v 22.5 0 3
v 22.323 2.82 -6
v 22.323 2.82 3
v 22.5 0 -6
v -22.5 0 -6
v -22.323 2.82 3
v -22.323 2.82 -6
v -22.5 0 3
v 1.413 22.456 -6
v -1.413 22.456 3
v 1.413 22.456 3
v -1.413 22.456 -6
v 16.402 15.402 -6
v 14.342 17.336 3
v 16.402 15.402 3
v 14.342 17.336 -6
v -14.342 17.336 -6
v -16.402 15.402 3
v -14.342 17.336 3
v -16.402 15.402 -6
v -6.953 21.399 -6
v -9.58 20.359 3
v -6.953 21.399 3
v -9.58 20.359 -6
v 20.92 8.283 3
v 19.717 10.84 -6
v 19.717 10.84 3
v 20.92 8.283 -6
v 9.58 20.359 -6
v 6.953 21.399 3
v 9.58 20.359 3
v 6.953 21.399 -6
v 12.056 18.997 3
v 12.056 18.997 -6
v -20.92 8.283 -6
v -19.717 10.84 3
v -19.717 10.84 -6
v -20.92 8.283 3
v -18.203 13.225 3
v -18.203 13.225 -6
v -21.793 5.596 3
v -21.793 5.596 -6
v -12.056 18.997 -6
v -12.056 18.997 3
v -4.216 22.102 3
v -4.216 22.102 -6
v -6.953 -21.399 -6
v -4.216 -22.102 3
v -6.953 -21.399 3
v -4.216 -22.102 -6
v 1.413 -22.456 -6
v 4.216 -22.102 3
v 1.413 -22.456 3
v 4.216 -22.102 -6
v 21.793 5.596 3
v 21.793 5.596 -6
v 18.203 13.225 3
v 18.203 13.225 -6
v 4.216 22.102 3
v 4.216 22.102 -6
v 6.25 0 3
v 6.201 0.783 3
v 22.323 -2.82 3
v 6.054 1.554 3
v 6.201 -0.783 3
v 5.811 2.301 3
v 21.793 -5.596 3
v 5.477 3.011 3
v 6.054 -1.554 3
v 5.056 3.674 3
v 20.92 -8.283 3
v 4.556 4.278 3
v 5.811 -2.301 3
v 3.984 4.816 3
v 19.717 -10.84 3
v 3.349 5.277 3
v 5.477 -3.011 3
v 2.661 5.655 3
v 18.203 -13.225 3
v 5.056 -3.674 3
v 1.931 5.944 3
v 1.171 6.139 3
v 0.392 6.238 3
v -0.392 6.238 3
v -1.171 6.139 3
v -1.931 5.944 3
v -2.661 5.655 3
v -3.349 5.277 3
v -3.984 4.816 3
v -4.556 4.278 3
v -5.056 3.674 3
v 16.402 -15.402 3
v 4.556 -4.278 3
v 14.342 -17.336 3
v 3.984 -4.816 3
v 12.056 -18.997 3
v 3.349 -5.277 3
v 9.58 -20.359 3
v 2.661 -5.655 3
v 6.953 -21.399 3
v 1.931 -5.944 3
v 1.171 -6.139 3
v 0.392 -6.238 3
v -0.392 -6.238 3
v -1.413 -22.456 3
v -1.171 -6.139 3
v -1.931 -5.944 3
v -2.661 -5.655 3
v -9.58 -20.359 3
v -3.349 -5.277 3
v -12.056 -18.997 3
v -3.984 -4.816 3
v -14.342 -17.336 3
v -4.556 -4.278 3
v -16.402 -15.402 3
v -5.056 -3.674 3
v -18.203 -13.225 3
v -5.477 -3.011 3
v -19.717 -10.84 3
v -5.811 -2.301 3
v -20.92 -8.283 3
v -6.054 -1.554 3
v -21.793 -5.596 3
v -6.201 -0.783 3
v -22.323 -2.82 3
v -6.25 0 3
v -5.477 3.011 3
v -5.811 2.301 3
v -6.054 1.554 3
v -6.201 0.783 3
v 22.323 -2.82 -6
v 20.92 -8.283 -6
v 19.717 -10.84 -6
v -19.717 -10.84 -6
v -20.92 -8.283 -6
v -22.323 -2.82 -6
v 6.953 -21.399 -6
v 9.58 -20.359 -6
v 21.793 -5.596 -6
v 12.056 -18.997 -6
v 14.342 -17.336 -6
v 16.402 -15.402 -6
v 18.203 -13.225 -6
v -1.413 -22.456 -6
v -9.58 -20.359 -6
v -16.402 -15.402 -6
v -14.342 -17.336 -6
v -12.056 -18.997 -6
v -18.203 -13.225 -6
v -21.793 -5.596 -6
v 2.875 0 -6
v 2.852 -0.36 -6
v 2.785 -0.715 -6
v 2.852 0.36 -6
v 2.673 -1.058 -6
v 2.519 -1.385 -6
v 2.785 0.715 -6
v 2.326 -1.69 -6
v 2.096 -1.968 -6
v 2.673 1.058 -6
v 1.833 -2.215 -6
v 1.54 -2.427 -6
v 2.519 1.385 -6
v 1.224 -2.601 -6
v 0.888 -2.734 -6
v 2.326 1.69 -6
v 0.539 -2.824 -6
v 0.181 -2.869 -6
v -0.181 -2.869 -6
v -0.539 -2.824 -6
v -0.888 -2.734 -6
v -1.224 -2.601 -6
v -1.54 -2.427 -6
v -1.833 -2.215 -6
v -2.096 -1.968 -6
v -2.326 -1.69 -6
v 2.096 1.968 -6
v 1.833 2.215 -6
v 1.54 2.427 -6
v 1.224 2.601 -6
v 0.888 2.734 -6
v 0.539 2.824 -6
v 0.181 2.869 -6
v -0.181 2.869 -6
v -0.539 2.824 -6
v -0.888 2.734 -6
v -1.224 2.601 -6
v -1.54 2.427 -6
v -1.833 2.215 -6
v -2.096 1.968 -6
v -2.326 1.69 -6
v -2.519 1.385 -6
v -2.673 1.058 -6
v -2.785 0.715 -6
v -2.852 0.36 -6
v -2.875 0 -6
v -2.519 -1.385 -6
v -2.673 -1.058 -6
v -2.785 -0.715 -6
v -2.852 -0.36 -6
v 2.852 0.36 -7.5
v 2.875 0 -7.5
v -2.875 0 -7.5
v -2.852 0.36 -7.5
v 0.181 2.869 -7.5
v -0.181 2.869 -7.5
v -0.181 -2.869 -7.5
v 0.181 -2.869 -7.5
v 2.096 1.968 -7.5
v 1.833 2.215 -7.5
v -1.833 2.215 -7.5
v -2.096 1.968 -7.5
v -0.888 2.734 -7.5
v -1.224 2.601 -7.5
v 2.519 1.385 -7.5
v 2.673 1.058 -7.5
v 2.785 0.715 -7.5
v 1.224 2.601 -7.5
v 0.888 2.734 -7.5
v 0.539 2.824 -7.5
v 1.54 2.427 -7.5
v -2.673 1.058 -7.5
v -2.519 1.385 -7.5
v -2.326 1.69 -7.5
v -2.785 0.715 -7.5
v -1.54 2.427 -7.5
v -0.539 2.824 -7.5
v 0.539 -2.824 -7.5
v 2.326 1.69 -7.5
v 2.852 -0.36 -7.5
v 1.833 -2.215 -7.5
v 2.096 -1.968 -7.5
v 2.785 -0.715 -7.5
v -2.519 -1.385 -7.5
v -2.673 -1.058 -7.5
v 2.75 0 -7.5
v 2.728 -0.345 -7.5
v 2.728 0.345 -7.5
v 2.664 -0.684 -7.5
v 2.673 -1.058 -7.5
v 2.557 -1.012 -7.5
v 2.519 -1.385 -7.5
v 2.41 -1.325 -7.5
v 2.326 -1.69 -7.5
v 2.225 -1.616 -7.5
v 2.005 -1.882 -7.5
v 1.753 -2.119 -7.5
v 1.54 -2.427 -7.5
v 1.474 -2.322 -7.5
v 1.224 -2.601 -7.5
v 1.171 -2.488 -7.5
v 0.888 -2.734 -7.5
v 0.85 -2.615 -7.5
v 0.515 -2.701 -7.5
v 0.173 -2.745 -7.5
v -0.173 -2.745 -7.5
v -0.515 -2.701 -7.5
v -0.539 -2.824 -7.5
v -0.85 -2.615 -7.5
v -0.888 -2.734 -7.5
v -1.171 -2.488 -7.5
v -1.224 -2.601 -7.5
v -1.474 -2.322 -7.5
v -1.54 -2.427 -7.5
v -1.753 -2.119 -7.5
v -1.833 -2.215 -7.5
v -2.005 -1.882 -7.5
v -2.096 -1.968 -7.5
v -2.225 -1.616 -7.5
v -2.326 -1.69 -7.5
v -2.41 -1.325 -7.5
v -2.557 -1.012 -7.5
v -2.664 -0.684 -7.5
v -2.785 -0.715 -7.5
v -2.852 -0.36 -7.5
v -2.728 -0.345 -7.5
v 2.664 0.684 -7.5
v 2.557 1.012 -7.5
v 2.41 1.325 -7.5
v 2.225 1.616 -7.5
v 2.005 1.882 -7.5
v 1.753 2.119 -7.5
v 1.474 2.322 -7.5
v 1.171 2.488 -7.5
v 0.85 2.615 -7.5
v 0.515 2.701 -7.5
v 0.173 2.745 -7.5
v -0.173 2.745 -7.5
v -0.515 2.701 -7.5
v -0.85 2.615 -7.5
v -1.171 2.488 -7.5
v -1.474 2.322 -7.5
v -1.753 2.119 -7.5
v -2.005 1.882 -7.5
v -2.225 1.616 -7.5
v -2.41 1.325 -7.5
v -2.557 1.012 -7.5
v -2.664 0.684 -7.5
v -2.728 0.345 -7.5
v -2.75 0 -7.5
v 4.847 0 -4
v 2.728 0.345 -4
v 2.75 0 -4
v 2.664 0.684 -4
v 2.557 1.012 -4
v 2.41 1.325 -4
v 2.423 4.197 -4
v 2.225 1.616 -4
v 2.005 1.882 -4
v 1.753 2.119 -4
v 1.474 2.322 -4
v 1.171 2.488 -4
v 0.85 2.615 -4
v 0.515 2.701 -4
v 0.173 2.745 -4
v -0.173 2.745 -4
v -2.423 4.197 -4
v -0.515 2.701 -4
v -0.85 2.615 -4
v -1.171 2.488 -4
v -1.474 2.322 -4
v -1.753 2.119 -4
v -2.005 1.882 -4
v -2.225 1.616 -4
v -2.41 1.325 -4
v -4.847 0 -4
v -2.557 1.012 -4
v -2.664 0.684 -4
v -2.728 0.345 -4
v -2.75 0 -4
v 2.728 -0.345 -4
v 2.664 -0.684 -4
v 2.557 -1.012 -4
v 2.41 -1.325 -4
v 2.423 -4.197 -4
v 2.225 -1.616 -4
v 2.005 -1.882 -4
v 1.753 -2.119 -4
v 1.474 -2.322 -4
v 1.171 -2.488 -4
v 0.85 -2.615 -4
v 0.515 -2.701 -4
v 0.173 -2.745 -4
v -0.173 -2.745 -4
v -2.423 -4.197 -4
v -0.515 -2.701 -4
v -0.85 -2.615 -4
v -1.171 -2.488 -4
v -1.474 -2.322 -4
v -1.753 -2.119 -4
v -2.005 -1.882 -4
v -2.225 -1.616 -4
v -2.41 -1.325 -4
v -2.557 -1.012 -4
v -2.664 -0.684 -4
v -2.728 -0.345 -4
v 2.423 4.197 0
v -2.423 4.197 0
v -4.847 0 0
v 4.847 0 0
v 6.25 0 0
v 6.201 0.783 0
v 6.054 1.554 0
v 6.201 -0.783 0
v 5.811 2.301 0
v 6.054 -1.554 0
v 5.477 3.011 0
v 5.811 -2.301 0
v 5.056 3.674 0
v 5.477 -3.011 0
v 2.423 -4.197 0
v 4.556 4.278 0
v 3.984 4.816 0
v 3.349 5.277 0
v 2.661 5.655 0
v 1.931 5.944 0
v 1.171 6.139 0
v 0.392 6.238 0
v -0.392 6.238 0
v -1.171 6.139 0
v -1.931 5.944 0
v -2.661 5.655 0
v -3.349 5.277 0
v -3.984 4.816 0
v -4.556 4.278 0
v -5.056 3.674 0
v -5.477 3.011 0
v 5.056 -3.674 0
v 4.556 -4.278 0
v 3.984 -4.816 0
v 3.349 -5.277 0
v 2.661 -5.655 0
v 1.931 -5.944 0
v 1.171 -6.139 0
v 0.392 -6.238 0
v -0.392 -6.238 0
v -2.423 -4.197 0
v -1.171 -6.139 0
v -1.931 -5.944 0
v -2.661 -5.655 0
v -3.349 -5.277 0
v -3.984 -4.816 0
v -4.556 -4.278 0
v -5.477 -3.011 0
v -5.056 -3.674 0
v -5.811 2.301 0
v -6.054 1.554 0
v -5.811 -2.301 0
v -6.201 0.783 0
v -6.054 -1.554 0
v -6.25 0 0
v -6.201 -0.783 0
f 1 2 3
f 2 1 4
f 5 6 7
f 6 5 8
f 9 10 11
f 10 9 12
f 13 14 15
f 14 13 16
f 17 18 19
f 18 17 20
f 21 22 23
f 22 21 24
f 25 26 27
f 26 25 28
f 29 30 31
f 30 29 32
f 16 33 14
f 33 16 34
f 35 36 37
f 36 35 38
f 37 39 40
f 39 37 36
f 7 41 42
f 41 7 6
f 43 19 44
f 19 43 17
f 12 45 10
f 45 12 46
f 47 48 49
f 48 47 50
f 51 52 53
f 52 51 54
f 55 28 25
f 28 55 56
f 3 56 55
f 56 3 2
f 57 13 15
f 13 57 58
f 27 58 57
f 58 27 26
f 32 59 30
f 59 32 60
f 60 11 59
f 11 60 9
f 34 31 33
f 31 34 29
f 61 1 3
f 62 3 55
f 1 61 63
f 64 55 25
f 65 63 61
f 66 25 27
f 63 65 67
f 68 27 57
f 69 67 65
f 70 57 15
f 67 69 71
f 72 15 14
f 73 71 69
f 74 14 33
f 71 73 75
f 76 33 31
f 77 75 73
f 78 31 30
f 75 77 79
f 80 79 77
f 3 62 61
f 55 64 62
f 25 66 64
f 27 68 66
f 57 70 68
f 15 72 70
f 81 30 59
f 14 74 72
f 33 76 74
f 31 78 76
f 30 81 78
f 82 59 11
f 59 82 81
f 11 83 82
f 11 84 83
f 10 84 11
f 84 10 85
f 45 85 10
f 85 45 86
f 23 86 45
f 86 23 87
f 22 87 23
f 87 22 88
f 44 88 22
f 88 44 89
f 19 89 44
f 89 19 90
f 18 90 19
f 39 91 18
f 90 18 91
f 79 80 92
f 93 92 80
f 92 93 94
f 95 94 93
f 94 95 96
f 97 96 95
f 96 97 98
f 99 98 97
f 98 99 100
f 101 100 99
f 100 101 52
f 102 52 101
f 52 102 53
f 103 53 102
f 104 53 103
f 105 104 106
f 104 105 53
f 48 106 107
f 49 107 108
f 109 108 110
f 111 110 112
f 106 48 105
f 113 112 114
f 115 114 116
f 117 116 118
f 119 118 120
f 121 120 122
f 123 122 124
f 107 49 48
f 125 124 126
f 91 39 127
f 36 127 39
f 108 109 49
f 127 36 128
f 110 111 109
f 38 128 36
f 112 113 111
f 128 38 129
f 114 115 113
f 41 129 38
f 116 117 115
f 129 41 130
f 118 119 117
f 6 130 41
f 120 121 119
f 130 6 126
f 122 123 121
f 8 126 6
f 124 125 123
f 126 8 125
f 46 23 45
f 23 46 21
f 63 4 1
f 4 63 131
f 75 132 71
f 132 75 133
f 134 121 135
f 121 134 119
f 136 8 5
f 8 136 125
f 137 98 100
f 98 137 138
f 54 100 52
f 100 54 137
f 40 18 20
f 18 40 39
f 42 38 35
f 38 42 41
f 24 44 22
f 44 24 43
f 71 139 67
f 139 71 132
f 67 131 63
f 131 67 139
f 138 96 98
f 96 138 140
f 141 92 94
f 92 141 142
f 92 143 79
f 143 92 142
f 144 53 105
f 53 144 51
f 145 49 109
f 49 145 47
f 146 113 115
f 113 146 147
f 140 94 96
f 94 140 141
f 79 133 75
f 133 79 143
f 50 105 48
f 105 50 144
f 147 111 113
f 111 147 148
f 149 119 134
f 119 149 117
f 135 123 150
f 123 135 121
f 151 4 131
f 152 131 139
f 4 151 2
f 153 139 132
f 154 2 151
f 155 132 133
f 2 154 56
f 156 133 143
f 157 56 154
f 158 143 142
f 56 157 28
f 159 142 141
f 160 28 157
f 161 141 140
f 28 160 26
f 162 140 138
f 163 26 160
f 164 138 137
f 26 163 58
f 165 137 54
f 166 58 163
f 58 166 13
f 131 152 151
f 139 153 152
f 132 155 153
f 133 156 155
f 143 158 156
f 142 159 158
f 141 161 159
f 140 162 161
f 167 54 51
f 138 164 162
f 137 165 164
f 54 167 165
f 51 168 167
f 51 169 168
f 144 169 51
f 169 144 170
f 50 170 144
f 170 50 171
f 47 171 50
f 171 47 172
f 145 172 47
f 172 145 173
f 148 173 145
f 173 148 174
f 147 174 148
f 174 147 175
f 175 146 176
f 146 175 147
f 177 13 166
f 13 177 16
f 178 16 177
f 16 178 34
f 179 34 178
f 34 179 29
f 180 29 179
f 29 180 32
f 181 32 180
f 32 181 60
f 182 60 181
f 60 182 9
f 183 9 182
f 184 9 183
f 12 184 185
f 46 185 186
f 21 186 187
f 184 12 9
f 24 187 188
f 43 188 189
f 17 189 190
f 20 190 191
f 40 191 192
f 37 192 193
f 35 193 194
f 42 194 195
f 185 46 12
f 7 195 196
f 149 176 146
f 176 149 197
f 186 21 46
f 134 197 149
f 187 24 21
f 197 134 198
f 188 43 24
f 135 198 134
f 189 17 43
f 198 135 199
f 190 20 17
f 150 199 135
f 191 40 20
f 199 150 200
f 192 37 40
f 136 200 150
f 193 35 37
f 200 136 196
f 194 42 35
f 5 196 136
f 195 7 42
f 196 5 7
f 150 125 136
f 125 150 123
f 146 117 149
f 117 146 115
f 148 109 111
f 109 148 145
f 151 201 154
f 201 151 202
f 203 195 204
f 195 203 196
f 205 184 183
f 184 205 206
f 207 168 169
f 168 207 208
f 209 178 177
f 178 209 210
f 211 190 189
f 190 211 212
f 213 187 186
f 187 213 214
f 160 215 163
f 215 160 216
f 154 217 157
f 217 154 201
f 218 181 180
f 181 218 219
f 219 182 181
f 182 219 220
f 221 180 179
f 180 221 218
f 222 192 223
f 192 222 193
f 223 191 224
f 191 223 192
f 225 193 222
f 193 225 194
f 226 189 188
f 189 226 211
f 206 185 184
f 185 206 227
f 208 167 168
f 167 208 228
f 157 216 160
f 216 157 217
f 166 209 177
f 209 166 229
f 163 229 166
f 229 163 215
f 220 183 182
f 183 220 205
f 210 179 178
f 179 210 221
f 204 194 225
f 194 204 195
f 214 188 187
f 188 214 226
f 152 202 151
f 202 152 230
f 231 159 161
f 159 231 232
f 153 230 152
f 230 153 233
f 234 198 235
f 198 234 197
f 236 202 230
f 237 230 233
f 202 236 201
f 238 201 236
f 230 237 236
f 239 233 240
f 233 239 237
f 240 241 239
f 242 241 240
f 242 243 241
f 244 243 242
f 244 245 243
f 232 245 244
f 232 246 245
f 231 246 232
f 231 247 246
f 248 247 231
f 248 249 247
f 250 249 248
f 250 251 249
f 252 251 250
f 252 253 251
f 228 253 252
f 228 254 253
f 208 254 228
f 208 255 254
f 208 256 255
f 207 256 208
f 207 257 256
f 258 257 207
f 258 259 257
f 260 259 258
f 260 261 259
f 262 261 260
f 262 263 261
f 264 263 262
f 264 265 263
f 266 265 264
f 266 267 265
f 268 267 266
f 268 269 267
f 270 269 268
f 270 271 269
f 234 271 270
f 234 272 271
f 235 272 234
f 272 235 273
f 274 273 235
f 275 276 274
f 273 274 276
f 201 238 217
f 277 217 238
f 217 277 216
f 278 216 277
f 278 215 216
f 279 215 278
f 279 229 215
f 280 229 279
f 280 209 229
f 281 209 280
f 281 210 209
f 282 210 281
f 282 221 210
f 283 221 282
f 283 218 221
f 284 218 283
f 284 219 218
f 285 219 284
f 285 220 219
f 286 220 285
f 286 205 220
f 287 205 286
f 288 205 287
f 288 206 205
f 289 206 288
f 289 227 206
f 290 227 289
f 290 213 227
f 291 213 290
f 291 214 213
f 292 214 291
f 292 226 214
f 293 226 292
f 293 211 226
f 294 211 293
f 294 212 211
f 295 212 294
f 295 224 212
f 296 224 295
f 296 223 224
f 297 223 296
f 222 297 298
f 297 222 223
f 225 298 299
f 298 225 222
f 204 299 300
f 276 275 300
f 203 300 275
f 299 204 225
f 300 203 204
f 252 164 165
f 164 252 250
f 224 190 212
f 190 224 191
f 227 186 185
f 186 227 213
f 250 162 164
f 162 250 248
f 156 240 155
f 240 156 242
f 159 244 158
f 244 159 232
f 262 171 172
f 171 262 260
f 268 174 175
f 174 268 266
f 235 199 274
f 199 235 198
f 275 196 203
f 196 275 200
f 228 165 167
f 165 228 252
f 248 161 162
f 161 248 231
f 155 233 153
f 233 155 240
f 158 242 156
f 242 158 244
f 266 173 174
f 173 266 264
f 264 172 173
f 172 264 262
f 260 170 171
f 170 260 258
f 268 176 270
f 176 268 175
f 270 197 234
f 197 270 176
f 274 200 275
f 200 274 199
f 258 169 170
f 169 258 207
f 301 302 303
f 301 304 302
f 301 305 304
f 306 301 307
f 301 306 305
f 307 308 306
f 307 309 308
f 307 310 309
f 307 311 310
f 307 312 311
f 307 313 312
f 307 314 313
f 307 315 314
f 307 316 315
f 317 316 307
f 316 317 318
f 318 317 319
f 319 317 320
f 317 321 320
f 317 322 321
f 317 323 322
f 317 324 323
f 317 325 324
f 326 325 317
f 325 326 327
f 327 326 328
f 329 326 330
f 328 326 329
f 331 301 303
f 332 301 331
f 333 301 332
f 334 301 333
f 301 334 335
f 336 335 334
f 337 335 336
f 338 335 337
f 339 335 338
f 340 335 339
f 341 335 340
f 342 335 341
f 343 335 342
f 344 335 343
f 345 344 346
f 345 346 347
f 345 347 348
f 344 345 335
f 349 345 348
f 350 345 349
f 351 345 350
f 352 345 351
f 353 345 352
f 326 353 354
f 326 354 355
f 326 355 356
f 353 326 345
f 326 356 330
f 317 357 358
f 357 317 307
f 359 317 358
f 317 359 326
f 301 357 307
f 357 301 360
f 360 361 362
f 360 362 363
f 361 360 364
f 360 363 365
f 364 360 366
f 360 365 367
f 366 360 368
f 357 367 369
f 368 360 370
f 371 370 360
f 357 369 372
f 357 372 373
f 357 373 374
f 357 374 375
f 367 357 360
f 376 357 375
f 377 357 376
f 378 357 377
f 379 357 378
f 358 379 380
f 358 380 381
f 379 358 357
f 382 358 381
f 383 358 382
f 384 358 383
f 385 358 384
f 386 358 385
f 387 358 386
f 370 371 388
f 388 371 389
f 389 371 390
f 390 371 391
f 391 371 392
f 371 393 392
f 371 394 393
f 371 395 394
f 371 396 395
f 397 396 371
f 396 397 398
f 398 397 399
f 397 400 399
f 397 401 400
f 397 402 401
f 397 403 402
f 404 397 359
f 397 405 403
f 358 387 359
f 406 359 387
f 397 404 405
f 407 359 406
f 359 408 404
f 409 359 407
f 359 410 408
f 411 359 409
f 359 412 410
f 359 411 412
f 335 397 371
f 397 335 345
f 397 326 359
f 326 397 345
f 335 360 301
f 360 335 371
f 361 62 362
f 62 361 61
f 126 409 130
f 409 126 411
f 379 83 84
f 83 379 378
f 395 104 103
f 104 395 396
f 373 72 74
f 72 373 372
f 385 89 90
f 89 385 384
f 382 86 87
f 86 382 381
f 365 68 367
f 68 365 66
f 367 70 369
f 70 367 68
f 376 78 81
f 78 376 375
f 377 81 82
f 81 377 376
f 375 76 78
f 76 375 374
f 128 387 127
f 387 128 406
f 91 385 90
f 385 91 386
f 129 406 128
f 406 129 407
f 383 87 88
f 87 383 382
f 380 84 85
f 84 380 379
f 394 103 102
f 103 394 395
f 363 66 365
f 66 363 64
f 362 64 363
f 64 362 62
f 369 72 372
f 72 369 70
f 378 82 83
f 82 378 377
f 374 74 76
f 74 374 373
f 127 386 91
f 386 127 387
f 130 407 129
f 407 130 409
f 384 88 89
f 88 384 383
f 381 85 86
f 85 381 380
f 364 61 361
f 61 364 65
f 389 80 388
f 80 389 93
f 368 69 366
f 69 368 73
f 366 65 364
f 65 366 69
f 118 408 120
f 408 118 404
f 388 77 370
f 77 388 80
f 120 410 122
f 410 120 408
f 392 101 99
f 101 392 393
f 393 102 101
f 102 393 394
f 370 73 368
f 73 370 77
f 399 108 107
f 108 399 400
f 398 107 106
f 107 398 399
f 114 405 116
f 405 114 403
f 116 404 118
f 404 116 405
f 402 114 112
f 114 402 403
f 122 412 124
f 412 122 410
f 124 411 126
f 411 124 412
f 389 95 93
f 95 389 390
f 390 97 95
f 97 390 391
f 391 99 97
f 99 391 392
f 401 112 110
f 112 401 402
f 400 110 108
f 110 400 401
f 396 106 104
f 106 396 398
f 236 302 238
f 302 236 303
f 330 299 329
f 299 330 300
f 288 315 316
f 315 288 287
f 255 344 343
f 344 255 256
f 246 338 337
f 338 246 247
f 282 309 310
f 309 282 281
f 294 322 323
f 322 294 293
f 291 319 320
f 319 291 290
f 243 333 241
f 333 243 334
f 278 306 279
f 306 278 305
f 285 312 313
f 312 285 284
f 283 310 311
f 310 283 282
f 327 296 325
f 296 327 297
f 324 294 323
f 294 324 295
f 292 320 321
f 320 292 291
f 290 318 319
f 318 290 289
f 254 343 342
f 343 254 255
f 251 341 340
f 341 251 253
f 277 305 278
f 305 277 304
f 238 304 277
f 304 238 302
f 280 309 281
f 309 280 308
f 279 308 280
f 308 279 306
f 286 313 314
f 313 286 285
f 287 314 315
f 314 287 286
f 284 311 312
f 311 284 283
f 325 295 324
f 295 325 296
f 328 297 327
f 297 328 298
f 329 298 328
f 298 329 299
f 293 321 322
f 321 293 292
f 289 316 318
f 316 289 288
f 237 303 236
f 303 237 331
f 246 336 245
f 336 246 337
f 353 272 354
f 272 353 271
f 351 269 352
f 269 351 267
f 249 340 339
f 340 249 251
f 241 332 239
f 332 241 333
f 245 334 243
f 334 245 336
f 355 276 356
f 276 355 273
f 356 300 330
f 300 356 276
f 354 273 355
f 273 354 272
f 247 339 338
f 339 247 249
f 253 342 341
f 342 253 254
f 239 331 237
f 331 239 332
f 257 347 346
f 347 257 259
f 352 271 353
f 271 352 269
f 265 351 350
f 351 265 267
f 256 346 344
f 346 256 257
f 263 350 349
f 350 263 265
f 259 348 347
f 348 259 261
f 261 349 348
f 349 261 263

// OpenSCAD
$fn = 50;


difference() {
	union() {
		translate(v = [0, 0, -6.0000000000]) {
			cylinder(h = 9.0000000000, r = 22.5000000000);
		}
		#translate(v = [0, 0, -7.5000000000]) {
			cylinder(h = 7.5000000000, r = 2.8750000000);
		}
	}
	union() {
		translate(v = [0, 0, 0]) {
			rotate(a = [0, 0, 0]) {
				difference() {
					union() {
						translate(v = [0, 0, -4]) {
							linear_extrude(height = 4) {
								polygon(points = [[4.8468000000, 0.0000000000], [2.4234000000, 4.1974519271], [-2.4234000000, 4.1974519271], [-4.8468000000, 0.0000000000], [-2.4234000000, -4.1974519271], [2.4234000000, -4.1974519271]]);
							}
						}
					}
					union();
				}
			}
		}
		#cylinder(h = 3, r = 6.2500000000);
		#translate(v = [0, 0, -100.0000000000]) {
			cylinder(h = 200, r = 2.7500000000);
		}
	}
}
